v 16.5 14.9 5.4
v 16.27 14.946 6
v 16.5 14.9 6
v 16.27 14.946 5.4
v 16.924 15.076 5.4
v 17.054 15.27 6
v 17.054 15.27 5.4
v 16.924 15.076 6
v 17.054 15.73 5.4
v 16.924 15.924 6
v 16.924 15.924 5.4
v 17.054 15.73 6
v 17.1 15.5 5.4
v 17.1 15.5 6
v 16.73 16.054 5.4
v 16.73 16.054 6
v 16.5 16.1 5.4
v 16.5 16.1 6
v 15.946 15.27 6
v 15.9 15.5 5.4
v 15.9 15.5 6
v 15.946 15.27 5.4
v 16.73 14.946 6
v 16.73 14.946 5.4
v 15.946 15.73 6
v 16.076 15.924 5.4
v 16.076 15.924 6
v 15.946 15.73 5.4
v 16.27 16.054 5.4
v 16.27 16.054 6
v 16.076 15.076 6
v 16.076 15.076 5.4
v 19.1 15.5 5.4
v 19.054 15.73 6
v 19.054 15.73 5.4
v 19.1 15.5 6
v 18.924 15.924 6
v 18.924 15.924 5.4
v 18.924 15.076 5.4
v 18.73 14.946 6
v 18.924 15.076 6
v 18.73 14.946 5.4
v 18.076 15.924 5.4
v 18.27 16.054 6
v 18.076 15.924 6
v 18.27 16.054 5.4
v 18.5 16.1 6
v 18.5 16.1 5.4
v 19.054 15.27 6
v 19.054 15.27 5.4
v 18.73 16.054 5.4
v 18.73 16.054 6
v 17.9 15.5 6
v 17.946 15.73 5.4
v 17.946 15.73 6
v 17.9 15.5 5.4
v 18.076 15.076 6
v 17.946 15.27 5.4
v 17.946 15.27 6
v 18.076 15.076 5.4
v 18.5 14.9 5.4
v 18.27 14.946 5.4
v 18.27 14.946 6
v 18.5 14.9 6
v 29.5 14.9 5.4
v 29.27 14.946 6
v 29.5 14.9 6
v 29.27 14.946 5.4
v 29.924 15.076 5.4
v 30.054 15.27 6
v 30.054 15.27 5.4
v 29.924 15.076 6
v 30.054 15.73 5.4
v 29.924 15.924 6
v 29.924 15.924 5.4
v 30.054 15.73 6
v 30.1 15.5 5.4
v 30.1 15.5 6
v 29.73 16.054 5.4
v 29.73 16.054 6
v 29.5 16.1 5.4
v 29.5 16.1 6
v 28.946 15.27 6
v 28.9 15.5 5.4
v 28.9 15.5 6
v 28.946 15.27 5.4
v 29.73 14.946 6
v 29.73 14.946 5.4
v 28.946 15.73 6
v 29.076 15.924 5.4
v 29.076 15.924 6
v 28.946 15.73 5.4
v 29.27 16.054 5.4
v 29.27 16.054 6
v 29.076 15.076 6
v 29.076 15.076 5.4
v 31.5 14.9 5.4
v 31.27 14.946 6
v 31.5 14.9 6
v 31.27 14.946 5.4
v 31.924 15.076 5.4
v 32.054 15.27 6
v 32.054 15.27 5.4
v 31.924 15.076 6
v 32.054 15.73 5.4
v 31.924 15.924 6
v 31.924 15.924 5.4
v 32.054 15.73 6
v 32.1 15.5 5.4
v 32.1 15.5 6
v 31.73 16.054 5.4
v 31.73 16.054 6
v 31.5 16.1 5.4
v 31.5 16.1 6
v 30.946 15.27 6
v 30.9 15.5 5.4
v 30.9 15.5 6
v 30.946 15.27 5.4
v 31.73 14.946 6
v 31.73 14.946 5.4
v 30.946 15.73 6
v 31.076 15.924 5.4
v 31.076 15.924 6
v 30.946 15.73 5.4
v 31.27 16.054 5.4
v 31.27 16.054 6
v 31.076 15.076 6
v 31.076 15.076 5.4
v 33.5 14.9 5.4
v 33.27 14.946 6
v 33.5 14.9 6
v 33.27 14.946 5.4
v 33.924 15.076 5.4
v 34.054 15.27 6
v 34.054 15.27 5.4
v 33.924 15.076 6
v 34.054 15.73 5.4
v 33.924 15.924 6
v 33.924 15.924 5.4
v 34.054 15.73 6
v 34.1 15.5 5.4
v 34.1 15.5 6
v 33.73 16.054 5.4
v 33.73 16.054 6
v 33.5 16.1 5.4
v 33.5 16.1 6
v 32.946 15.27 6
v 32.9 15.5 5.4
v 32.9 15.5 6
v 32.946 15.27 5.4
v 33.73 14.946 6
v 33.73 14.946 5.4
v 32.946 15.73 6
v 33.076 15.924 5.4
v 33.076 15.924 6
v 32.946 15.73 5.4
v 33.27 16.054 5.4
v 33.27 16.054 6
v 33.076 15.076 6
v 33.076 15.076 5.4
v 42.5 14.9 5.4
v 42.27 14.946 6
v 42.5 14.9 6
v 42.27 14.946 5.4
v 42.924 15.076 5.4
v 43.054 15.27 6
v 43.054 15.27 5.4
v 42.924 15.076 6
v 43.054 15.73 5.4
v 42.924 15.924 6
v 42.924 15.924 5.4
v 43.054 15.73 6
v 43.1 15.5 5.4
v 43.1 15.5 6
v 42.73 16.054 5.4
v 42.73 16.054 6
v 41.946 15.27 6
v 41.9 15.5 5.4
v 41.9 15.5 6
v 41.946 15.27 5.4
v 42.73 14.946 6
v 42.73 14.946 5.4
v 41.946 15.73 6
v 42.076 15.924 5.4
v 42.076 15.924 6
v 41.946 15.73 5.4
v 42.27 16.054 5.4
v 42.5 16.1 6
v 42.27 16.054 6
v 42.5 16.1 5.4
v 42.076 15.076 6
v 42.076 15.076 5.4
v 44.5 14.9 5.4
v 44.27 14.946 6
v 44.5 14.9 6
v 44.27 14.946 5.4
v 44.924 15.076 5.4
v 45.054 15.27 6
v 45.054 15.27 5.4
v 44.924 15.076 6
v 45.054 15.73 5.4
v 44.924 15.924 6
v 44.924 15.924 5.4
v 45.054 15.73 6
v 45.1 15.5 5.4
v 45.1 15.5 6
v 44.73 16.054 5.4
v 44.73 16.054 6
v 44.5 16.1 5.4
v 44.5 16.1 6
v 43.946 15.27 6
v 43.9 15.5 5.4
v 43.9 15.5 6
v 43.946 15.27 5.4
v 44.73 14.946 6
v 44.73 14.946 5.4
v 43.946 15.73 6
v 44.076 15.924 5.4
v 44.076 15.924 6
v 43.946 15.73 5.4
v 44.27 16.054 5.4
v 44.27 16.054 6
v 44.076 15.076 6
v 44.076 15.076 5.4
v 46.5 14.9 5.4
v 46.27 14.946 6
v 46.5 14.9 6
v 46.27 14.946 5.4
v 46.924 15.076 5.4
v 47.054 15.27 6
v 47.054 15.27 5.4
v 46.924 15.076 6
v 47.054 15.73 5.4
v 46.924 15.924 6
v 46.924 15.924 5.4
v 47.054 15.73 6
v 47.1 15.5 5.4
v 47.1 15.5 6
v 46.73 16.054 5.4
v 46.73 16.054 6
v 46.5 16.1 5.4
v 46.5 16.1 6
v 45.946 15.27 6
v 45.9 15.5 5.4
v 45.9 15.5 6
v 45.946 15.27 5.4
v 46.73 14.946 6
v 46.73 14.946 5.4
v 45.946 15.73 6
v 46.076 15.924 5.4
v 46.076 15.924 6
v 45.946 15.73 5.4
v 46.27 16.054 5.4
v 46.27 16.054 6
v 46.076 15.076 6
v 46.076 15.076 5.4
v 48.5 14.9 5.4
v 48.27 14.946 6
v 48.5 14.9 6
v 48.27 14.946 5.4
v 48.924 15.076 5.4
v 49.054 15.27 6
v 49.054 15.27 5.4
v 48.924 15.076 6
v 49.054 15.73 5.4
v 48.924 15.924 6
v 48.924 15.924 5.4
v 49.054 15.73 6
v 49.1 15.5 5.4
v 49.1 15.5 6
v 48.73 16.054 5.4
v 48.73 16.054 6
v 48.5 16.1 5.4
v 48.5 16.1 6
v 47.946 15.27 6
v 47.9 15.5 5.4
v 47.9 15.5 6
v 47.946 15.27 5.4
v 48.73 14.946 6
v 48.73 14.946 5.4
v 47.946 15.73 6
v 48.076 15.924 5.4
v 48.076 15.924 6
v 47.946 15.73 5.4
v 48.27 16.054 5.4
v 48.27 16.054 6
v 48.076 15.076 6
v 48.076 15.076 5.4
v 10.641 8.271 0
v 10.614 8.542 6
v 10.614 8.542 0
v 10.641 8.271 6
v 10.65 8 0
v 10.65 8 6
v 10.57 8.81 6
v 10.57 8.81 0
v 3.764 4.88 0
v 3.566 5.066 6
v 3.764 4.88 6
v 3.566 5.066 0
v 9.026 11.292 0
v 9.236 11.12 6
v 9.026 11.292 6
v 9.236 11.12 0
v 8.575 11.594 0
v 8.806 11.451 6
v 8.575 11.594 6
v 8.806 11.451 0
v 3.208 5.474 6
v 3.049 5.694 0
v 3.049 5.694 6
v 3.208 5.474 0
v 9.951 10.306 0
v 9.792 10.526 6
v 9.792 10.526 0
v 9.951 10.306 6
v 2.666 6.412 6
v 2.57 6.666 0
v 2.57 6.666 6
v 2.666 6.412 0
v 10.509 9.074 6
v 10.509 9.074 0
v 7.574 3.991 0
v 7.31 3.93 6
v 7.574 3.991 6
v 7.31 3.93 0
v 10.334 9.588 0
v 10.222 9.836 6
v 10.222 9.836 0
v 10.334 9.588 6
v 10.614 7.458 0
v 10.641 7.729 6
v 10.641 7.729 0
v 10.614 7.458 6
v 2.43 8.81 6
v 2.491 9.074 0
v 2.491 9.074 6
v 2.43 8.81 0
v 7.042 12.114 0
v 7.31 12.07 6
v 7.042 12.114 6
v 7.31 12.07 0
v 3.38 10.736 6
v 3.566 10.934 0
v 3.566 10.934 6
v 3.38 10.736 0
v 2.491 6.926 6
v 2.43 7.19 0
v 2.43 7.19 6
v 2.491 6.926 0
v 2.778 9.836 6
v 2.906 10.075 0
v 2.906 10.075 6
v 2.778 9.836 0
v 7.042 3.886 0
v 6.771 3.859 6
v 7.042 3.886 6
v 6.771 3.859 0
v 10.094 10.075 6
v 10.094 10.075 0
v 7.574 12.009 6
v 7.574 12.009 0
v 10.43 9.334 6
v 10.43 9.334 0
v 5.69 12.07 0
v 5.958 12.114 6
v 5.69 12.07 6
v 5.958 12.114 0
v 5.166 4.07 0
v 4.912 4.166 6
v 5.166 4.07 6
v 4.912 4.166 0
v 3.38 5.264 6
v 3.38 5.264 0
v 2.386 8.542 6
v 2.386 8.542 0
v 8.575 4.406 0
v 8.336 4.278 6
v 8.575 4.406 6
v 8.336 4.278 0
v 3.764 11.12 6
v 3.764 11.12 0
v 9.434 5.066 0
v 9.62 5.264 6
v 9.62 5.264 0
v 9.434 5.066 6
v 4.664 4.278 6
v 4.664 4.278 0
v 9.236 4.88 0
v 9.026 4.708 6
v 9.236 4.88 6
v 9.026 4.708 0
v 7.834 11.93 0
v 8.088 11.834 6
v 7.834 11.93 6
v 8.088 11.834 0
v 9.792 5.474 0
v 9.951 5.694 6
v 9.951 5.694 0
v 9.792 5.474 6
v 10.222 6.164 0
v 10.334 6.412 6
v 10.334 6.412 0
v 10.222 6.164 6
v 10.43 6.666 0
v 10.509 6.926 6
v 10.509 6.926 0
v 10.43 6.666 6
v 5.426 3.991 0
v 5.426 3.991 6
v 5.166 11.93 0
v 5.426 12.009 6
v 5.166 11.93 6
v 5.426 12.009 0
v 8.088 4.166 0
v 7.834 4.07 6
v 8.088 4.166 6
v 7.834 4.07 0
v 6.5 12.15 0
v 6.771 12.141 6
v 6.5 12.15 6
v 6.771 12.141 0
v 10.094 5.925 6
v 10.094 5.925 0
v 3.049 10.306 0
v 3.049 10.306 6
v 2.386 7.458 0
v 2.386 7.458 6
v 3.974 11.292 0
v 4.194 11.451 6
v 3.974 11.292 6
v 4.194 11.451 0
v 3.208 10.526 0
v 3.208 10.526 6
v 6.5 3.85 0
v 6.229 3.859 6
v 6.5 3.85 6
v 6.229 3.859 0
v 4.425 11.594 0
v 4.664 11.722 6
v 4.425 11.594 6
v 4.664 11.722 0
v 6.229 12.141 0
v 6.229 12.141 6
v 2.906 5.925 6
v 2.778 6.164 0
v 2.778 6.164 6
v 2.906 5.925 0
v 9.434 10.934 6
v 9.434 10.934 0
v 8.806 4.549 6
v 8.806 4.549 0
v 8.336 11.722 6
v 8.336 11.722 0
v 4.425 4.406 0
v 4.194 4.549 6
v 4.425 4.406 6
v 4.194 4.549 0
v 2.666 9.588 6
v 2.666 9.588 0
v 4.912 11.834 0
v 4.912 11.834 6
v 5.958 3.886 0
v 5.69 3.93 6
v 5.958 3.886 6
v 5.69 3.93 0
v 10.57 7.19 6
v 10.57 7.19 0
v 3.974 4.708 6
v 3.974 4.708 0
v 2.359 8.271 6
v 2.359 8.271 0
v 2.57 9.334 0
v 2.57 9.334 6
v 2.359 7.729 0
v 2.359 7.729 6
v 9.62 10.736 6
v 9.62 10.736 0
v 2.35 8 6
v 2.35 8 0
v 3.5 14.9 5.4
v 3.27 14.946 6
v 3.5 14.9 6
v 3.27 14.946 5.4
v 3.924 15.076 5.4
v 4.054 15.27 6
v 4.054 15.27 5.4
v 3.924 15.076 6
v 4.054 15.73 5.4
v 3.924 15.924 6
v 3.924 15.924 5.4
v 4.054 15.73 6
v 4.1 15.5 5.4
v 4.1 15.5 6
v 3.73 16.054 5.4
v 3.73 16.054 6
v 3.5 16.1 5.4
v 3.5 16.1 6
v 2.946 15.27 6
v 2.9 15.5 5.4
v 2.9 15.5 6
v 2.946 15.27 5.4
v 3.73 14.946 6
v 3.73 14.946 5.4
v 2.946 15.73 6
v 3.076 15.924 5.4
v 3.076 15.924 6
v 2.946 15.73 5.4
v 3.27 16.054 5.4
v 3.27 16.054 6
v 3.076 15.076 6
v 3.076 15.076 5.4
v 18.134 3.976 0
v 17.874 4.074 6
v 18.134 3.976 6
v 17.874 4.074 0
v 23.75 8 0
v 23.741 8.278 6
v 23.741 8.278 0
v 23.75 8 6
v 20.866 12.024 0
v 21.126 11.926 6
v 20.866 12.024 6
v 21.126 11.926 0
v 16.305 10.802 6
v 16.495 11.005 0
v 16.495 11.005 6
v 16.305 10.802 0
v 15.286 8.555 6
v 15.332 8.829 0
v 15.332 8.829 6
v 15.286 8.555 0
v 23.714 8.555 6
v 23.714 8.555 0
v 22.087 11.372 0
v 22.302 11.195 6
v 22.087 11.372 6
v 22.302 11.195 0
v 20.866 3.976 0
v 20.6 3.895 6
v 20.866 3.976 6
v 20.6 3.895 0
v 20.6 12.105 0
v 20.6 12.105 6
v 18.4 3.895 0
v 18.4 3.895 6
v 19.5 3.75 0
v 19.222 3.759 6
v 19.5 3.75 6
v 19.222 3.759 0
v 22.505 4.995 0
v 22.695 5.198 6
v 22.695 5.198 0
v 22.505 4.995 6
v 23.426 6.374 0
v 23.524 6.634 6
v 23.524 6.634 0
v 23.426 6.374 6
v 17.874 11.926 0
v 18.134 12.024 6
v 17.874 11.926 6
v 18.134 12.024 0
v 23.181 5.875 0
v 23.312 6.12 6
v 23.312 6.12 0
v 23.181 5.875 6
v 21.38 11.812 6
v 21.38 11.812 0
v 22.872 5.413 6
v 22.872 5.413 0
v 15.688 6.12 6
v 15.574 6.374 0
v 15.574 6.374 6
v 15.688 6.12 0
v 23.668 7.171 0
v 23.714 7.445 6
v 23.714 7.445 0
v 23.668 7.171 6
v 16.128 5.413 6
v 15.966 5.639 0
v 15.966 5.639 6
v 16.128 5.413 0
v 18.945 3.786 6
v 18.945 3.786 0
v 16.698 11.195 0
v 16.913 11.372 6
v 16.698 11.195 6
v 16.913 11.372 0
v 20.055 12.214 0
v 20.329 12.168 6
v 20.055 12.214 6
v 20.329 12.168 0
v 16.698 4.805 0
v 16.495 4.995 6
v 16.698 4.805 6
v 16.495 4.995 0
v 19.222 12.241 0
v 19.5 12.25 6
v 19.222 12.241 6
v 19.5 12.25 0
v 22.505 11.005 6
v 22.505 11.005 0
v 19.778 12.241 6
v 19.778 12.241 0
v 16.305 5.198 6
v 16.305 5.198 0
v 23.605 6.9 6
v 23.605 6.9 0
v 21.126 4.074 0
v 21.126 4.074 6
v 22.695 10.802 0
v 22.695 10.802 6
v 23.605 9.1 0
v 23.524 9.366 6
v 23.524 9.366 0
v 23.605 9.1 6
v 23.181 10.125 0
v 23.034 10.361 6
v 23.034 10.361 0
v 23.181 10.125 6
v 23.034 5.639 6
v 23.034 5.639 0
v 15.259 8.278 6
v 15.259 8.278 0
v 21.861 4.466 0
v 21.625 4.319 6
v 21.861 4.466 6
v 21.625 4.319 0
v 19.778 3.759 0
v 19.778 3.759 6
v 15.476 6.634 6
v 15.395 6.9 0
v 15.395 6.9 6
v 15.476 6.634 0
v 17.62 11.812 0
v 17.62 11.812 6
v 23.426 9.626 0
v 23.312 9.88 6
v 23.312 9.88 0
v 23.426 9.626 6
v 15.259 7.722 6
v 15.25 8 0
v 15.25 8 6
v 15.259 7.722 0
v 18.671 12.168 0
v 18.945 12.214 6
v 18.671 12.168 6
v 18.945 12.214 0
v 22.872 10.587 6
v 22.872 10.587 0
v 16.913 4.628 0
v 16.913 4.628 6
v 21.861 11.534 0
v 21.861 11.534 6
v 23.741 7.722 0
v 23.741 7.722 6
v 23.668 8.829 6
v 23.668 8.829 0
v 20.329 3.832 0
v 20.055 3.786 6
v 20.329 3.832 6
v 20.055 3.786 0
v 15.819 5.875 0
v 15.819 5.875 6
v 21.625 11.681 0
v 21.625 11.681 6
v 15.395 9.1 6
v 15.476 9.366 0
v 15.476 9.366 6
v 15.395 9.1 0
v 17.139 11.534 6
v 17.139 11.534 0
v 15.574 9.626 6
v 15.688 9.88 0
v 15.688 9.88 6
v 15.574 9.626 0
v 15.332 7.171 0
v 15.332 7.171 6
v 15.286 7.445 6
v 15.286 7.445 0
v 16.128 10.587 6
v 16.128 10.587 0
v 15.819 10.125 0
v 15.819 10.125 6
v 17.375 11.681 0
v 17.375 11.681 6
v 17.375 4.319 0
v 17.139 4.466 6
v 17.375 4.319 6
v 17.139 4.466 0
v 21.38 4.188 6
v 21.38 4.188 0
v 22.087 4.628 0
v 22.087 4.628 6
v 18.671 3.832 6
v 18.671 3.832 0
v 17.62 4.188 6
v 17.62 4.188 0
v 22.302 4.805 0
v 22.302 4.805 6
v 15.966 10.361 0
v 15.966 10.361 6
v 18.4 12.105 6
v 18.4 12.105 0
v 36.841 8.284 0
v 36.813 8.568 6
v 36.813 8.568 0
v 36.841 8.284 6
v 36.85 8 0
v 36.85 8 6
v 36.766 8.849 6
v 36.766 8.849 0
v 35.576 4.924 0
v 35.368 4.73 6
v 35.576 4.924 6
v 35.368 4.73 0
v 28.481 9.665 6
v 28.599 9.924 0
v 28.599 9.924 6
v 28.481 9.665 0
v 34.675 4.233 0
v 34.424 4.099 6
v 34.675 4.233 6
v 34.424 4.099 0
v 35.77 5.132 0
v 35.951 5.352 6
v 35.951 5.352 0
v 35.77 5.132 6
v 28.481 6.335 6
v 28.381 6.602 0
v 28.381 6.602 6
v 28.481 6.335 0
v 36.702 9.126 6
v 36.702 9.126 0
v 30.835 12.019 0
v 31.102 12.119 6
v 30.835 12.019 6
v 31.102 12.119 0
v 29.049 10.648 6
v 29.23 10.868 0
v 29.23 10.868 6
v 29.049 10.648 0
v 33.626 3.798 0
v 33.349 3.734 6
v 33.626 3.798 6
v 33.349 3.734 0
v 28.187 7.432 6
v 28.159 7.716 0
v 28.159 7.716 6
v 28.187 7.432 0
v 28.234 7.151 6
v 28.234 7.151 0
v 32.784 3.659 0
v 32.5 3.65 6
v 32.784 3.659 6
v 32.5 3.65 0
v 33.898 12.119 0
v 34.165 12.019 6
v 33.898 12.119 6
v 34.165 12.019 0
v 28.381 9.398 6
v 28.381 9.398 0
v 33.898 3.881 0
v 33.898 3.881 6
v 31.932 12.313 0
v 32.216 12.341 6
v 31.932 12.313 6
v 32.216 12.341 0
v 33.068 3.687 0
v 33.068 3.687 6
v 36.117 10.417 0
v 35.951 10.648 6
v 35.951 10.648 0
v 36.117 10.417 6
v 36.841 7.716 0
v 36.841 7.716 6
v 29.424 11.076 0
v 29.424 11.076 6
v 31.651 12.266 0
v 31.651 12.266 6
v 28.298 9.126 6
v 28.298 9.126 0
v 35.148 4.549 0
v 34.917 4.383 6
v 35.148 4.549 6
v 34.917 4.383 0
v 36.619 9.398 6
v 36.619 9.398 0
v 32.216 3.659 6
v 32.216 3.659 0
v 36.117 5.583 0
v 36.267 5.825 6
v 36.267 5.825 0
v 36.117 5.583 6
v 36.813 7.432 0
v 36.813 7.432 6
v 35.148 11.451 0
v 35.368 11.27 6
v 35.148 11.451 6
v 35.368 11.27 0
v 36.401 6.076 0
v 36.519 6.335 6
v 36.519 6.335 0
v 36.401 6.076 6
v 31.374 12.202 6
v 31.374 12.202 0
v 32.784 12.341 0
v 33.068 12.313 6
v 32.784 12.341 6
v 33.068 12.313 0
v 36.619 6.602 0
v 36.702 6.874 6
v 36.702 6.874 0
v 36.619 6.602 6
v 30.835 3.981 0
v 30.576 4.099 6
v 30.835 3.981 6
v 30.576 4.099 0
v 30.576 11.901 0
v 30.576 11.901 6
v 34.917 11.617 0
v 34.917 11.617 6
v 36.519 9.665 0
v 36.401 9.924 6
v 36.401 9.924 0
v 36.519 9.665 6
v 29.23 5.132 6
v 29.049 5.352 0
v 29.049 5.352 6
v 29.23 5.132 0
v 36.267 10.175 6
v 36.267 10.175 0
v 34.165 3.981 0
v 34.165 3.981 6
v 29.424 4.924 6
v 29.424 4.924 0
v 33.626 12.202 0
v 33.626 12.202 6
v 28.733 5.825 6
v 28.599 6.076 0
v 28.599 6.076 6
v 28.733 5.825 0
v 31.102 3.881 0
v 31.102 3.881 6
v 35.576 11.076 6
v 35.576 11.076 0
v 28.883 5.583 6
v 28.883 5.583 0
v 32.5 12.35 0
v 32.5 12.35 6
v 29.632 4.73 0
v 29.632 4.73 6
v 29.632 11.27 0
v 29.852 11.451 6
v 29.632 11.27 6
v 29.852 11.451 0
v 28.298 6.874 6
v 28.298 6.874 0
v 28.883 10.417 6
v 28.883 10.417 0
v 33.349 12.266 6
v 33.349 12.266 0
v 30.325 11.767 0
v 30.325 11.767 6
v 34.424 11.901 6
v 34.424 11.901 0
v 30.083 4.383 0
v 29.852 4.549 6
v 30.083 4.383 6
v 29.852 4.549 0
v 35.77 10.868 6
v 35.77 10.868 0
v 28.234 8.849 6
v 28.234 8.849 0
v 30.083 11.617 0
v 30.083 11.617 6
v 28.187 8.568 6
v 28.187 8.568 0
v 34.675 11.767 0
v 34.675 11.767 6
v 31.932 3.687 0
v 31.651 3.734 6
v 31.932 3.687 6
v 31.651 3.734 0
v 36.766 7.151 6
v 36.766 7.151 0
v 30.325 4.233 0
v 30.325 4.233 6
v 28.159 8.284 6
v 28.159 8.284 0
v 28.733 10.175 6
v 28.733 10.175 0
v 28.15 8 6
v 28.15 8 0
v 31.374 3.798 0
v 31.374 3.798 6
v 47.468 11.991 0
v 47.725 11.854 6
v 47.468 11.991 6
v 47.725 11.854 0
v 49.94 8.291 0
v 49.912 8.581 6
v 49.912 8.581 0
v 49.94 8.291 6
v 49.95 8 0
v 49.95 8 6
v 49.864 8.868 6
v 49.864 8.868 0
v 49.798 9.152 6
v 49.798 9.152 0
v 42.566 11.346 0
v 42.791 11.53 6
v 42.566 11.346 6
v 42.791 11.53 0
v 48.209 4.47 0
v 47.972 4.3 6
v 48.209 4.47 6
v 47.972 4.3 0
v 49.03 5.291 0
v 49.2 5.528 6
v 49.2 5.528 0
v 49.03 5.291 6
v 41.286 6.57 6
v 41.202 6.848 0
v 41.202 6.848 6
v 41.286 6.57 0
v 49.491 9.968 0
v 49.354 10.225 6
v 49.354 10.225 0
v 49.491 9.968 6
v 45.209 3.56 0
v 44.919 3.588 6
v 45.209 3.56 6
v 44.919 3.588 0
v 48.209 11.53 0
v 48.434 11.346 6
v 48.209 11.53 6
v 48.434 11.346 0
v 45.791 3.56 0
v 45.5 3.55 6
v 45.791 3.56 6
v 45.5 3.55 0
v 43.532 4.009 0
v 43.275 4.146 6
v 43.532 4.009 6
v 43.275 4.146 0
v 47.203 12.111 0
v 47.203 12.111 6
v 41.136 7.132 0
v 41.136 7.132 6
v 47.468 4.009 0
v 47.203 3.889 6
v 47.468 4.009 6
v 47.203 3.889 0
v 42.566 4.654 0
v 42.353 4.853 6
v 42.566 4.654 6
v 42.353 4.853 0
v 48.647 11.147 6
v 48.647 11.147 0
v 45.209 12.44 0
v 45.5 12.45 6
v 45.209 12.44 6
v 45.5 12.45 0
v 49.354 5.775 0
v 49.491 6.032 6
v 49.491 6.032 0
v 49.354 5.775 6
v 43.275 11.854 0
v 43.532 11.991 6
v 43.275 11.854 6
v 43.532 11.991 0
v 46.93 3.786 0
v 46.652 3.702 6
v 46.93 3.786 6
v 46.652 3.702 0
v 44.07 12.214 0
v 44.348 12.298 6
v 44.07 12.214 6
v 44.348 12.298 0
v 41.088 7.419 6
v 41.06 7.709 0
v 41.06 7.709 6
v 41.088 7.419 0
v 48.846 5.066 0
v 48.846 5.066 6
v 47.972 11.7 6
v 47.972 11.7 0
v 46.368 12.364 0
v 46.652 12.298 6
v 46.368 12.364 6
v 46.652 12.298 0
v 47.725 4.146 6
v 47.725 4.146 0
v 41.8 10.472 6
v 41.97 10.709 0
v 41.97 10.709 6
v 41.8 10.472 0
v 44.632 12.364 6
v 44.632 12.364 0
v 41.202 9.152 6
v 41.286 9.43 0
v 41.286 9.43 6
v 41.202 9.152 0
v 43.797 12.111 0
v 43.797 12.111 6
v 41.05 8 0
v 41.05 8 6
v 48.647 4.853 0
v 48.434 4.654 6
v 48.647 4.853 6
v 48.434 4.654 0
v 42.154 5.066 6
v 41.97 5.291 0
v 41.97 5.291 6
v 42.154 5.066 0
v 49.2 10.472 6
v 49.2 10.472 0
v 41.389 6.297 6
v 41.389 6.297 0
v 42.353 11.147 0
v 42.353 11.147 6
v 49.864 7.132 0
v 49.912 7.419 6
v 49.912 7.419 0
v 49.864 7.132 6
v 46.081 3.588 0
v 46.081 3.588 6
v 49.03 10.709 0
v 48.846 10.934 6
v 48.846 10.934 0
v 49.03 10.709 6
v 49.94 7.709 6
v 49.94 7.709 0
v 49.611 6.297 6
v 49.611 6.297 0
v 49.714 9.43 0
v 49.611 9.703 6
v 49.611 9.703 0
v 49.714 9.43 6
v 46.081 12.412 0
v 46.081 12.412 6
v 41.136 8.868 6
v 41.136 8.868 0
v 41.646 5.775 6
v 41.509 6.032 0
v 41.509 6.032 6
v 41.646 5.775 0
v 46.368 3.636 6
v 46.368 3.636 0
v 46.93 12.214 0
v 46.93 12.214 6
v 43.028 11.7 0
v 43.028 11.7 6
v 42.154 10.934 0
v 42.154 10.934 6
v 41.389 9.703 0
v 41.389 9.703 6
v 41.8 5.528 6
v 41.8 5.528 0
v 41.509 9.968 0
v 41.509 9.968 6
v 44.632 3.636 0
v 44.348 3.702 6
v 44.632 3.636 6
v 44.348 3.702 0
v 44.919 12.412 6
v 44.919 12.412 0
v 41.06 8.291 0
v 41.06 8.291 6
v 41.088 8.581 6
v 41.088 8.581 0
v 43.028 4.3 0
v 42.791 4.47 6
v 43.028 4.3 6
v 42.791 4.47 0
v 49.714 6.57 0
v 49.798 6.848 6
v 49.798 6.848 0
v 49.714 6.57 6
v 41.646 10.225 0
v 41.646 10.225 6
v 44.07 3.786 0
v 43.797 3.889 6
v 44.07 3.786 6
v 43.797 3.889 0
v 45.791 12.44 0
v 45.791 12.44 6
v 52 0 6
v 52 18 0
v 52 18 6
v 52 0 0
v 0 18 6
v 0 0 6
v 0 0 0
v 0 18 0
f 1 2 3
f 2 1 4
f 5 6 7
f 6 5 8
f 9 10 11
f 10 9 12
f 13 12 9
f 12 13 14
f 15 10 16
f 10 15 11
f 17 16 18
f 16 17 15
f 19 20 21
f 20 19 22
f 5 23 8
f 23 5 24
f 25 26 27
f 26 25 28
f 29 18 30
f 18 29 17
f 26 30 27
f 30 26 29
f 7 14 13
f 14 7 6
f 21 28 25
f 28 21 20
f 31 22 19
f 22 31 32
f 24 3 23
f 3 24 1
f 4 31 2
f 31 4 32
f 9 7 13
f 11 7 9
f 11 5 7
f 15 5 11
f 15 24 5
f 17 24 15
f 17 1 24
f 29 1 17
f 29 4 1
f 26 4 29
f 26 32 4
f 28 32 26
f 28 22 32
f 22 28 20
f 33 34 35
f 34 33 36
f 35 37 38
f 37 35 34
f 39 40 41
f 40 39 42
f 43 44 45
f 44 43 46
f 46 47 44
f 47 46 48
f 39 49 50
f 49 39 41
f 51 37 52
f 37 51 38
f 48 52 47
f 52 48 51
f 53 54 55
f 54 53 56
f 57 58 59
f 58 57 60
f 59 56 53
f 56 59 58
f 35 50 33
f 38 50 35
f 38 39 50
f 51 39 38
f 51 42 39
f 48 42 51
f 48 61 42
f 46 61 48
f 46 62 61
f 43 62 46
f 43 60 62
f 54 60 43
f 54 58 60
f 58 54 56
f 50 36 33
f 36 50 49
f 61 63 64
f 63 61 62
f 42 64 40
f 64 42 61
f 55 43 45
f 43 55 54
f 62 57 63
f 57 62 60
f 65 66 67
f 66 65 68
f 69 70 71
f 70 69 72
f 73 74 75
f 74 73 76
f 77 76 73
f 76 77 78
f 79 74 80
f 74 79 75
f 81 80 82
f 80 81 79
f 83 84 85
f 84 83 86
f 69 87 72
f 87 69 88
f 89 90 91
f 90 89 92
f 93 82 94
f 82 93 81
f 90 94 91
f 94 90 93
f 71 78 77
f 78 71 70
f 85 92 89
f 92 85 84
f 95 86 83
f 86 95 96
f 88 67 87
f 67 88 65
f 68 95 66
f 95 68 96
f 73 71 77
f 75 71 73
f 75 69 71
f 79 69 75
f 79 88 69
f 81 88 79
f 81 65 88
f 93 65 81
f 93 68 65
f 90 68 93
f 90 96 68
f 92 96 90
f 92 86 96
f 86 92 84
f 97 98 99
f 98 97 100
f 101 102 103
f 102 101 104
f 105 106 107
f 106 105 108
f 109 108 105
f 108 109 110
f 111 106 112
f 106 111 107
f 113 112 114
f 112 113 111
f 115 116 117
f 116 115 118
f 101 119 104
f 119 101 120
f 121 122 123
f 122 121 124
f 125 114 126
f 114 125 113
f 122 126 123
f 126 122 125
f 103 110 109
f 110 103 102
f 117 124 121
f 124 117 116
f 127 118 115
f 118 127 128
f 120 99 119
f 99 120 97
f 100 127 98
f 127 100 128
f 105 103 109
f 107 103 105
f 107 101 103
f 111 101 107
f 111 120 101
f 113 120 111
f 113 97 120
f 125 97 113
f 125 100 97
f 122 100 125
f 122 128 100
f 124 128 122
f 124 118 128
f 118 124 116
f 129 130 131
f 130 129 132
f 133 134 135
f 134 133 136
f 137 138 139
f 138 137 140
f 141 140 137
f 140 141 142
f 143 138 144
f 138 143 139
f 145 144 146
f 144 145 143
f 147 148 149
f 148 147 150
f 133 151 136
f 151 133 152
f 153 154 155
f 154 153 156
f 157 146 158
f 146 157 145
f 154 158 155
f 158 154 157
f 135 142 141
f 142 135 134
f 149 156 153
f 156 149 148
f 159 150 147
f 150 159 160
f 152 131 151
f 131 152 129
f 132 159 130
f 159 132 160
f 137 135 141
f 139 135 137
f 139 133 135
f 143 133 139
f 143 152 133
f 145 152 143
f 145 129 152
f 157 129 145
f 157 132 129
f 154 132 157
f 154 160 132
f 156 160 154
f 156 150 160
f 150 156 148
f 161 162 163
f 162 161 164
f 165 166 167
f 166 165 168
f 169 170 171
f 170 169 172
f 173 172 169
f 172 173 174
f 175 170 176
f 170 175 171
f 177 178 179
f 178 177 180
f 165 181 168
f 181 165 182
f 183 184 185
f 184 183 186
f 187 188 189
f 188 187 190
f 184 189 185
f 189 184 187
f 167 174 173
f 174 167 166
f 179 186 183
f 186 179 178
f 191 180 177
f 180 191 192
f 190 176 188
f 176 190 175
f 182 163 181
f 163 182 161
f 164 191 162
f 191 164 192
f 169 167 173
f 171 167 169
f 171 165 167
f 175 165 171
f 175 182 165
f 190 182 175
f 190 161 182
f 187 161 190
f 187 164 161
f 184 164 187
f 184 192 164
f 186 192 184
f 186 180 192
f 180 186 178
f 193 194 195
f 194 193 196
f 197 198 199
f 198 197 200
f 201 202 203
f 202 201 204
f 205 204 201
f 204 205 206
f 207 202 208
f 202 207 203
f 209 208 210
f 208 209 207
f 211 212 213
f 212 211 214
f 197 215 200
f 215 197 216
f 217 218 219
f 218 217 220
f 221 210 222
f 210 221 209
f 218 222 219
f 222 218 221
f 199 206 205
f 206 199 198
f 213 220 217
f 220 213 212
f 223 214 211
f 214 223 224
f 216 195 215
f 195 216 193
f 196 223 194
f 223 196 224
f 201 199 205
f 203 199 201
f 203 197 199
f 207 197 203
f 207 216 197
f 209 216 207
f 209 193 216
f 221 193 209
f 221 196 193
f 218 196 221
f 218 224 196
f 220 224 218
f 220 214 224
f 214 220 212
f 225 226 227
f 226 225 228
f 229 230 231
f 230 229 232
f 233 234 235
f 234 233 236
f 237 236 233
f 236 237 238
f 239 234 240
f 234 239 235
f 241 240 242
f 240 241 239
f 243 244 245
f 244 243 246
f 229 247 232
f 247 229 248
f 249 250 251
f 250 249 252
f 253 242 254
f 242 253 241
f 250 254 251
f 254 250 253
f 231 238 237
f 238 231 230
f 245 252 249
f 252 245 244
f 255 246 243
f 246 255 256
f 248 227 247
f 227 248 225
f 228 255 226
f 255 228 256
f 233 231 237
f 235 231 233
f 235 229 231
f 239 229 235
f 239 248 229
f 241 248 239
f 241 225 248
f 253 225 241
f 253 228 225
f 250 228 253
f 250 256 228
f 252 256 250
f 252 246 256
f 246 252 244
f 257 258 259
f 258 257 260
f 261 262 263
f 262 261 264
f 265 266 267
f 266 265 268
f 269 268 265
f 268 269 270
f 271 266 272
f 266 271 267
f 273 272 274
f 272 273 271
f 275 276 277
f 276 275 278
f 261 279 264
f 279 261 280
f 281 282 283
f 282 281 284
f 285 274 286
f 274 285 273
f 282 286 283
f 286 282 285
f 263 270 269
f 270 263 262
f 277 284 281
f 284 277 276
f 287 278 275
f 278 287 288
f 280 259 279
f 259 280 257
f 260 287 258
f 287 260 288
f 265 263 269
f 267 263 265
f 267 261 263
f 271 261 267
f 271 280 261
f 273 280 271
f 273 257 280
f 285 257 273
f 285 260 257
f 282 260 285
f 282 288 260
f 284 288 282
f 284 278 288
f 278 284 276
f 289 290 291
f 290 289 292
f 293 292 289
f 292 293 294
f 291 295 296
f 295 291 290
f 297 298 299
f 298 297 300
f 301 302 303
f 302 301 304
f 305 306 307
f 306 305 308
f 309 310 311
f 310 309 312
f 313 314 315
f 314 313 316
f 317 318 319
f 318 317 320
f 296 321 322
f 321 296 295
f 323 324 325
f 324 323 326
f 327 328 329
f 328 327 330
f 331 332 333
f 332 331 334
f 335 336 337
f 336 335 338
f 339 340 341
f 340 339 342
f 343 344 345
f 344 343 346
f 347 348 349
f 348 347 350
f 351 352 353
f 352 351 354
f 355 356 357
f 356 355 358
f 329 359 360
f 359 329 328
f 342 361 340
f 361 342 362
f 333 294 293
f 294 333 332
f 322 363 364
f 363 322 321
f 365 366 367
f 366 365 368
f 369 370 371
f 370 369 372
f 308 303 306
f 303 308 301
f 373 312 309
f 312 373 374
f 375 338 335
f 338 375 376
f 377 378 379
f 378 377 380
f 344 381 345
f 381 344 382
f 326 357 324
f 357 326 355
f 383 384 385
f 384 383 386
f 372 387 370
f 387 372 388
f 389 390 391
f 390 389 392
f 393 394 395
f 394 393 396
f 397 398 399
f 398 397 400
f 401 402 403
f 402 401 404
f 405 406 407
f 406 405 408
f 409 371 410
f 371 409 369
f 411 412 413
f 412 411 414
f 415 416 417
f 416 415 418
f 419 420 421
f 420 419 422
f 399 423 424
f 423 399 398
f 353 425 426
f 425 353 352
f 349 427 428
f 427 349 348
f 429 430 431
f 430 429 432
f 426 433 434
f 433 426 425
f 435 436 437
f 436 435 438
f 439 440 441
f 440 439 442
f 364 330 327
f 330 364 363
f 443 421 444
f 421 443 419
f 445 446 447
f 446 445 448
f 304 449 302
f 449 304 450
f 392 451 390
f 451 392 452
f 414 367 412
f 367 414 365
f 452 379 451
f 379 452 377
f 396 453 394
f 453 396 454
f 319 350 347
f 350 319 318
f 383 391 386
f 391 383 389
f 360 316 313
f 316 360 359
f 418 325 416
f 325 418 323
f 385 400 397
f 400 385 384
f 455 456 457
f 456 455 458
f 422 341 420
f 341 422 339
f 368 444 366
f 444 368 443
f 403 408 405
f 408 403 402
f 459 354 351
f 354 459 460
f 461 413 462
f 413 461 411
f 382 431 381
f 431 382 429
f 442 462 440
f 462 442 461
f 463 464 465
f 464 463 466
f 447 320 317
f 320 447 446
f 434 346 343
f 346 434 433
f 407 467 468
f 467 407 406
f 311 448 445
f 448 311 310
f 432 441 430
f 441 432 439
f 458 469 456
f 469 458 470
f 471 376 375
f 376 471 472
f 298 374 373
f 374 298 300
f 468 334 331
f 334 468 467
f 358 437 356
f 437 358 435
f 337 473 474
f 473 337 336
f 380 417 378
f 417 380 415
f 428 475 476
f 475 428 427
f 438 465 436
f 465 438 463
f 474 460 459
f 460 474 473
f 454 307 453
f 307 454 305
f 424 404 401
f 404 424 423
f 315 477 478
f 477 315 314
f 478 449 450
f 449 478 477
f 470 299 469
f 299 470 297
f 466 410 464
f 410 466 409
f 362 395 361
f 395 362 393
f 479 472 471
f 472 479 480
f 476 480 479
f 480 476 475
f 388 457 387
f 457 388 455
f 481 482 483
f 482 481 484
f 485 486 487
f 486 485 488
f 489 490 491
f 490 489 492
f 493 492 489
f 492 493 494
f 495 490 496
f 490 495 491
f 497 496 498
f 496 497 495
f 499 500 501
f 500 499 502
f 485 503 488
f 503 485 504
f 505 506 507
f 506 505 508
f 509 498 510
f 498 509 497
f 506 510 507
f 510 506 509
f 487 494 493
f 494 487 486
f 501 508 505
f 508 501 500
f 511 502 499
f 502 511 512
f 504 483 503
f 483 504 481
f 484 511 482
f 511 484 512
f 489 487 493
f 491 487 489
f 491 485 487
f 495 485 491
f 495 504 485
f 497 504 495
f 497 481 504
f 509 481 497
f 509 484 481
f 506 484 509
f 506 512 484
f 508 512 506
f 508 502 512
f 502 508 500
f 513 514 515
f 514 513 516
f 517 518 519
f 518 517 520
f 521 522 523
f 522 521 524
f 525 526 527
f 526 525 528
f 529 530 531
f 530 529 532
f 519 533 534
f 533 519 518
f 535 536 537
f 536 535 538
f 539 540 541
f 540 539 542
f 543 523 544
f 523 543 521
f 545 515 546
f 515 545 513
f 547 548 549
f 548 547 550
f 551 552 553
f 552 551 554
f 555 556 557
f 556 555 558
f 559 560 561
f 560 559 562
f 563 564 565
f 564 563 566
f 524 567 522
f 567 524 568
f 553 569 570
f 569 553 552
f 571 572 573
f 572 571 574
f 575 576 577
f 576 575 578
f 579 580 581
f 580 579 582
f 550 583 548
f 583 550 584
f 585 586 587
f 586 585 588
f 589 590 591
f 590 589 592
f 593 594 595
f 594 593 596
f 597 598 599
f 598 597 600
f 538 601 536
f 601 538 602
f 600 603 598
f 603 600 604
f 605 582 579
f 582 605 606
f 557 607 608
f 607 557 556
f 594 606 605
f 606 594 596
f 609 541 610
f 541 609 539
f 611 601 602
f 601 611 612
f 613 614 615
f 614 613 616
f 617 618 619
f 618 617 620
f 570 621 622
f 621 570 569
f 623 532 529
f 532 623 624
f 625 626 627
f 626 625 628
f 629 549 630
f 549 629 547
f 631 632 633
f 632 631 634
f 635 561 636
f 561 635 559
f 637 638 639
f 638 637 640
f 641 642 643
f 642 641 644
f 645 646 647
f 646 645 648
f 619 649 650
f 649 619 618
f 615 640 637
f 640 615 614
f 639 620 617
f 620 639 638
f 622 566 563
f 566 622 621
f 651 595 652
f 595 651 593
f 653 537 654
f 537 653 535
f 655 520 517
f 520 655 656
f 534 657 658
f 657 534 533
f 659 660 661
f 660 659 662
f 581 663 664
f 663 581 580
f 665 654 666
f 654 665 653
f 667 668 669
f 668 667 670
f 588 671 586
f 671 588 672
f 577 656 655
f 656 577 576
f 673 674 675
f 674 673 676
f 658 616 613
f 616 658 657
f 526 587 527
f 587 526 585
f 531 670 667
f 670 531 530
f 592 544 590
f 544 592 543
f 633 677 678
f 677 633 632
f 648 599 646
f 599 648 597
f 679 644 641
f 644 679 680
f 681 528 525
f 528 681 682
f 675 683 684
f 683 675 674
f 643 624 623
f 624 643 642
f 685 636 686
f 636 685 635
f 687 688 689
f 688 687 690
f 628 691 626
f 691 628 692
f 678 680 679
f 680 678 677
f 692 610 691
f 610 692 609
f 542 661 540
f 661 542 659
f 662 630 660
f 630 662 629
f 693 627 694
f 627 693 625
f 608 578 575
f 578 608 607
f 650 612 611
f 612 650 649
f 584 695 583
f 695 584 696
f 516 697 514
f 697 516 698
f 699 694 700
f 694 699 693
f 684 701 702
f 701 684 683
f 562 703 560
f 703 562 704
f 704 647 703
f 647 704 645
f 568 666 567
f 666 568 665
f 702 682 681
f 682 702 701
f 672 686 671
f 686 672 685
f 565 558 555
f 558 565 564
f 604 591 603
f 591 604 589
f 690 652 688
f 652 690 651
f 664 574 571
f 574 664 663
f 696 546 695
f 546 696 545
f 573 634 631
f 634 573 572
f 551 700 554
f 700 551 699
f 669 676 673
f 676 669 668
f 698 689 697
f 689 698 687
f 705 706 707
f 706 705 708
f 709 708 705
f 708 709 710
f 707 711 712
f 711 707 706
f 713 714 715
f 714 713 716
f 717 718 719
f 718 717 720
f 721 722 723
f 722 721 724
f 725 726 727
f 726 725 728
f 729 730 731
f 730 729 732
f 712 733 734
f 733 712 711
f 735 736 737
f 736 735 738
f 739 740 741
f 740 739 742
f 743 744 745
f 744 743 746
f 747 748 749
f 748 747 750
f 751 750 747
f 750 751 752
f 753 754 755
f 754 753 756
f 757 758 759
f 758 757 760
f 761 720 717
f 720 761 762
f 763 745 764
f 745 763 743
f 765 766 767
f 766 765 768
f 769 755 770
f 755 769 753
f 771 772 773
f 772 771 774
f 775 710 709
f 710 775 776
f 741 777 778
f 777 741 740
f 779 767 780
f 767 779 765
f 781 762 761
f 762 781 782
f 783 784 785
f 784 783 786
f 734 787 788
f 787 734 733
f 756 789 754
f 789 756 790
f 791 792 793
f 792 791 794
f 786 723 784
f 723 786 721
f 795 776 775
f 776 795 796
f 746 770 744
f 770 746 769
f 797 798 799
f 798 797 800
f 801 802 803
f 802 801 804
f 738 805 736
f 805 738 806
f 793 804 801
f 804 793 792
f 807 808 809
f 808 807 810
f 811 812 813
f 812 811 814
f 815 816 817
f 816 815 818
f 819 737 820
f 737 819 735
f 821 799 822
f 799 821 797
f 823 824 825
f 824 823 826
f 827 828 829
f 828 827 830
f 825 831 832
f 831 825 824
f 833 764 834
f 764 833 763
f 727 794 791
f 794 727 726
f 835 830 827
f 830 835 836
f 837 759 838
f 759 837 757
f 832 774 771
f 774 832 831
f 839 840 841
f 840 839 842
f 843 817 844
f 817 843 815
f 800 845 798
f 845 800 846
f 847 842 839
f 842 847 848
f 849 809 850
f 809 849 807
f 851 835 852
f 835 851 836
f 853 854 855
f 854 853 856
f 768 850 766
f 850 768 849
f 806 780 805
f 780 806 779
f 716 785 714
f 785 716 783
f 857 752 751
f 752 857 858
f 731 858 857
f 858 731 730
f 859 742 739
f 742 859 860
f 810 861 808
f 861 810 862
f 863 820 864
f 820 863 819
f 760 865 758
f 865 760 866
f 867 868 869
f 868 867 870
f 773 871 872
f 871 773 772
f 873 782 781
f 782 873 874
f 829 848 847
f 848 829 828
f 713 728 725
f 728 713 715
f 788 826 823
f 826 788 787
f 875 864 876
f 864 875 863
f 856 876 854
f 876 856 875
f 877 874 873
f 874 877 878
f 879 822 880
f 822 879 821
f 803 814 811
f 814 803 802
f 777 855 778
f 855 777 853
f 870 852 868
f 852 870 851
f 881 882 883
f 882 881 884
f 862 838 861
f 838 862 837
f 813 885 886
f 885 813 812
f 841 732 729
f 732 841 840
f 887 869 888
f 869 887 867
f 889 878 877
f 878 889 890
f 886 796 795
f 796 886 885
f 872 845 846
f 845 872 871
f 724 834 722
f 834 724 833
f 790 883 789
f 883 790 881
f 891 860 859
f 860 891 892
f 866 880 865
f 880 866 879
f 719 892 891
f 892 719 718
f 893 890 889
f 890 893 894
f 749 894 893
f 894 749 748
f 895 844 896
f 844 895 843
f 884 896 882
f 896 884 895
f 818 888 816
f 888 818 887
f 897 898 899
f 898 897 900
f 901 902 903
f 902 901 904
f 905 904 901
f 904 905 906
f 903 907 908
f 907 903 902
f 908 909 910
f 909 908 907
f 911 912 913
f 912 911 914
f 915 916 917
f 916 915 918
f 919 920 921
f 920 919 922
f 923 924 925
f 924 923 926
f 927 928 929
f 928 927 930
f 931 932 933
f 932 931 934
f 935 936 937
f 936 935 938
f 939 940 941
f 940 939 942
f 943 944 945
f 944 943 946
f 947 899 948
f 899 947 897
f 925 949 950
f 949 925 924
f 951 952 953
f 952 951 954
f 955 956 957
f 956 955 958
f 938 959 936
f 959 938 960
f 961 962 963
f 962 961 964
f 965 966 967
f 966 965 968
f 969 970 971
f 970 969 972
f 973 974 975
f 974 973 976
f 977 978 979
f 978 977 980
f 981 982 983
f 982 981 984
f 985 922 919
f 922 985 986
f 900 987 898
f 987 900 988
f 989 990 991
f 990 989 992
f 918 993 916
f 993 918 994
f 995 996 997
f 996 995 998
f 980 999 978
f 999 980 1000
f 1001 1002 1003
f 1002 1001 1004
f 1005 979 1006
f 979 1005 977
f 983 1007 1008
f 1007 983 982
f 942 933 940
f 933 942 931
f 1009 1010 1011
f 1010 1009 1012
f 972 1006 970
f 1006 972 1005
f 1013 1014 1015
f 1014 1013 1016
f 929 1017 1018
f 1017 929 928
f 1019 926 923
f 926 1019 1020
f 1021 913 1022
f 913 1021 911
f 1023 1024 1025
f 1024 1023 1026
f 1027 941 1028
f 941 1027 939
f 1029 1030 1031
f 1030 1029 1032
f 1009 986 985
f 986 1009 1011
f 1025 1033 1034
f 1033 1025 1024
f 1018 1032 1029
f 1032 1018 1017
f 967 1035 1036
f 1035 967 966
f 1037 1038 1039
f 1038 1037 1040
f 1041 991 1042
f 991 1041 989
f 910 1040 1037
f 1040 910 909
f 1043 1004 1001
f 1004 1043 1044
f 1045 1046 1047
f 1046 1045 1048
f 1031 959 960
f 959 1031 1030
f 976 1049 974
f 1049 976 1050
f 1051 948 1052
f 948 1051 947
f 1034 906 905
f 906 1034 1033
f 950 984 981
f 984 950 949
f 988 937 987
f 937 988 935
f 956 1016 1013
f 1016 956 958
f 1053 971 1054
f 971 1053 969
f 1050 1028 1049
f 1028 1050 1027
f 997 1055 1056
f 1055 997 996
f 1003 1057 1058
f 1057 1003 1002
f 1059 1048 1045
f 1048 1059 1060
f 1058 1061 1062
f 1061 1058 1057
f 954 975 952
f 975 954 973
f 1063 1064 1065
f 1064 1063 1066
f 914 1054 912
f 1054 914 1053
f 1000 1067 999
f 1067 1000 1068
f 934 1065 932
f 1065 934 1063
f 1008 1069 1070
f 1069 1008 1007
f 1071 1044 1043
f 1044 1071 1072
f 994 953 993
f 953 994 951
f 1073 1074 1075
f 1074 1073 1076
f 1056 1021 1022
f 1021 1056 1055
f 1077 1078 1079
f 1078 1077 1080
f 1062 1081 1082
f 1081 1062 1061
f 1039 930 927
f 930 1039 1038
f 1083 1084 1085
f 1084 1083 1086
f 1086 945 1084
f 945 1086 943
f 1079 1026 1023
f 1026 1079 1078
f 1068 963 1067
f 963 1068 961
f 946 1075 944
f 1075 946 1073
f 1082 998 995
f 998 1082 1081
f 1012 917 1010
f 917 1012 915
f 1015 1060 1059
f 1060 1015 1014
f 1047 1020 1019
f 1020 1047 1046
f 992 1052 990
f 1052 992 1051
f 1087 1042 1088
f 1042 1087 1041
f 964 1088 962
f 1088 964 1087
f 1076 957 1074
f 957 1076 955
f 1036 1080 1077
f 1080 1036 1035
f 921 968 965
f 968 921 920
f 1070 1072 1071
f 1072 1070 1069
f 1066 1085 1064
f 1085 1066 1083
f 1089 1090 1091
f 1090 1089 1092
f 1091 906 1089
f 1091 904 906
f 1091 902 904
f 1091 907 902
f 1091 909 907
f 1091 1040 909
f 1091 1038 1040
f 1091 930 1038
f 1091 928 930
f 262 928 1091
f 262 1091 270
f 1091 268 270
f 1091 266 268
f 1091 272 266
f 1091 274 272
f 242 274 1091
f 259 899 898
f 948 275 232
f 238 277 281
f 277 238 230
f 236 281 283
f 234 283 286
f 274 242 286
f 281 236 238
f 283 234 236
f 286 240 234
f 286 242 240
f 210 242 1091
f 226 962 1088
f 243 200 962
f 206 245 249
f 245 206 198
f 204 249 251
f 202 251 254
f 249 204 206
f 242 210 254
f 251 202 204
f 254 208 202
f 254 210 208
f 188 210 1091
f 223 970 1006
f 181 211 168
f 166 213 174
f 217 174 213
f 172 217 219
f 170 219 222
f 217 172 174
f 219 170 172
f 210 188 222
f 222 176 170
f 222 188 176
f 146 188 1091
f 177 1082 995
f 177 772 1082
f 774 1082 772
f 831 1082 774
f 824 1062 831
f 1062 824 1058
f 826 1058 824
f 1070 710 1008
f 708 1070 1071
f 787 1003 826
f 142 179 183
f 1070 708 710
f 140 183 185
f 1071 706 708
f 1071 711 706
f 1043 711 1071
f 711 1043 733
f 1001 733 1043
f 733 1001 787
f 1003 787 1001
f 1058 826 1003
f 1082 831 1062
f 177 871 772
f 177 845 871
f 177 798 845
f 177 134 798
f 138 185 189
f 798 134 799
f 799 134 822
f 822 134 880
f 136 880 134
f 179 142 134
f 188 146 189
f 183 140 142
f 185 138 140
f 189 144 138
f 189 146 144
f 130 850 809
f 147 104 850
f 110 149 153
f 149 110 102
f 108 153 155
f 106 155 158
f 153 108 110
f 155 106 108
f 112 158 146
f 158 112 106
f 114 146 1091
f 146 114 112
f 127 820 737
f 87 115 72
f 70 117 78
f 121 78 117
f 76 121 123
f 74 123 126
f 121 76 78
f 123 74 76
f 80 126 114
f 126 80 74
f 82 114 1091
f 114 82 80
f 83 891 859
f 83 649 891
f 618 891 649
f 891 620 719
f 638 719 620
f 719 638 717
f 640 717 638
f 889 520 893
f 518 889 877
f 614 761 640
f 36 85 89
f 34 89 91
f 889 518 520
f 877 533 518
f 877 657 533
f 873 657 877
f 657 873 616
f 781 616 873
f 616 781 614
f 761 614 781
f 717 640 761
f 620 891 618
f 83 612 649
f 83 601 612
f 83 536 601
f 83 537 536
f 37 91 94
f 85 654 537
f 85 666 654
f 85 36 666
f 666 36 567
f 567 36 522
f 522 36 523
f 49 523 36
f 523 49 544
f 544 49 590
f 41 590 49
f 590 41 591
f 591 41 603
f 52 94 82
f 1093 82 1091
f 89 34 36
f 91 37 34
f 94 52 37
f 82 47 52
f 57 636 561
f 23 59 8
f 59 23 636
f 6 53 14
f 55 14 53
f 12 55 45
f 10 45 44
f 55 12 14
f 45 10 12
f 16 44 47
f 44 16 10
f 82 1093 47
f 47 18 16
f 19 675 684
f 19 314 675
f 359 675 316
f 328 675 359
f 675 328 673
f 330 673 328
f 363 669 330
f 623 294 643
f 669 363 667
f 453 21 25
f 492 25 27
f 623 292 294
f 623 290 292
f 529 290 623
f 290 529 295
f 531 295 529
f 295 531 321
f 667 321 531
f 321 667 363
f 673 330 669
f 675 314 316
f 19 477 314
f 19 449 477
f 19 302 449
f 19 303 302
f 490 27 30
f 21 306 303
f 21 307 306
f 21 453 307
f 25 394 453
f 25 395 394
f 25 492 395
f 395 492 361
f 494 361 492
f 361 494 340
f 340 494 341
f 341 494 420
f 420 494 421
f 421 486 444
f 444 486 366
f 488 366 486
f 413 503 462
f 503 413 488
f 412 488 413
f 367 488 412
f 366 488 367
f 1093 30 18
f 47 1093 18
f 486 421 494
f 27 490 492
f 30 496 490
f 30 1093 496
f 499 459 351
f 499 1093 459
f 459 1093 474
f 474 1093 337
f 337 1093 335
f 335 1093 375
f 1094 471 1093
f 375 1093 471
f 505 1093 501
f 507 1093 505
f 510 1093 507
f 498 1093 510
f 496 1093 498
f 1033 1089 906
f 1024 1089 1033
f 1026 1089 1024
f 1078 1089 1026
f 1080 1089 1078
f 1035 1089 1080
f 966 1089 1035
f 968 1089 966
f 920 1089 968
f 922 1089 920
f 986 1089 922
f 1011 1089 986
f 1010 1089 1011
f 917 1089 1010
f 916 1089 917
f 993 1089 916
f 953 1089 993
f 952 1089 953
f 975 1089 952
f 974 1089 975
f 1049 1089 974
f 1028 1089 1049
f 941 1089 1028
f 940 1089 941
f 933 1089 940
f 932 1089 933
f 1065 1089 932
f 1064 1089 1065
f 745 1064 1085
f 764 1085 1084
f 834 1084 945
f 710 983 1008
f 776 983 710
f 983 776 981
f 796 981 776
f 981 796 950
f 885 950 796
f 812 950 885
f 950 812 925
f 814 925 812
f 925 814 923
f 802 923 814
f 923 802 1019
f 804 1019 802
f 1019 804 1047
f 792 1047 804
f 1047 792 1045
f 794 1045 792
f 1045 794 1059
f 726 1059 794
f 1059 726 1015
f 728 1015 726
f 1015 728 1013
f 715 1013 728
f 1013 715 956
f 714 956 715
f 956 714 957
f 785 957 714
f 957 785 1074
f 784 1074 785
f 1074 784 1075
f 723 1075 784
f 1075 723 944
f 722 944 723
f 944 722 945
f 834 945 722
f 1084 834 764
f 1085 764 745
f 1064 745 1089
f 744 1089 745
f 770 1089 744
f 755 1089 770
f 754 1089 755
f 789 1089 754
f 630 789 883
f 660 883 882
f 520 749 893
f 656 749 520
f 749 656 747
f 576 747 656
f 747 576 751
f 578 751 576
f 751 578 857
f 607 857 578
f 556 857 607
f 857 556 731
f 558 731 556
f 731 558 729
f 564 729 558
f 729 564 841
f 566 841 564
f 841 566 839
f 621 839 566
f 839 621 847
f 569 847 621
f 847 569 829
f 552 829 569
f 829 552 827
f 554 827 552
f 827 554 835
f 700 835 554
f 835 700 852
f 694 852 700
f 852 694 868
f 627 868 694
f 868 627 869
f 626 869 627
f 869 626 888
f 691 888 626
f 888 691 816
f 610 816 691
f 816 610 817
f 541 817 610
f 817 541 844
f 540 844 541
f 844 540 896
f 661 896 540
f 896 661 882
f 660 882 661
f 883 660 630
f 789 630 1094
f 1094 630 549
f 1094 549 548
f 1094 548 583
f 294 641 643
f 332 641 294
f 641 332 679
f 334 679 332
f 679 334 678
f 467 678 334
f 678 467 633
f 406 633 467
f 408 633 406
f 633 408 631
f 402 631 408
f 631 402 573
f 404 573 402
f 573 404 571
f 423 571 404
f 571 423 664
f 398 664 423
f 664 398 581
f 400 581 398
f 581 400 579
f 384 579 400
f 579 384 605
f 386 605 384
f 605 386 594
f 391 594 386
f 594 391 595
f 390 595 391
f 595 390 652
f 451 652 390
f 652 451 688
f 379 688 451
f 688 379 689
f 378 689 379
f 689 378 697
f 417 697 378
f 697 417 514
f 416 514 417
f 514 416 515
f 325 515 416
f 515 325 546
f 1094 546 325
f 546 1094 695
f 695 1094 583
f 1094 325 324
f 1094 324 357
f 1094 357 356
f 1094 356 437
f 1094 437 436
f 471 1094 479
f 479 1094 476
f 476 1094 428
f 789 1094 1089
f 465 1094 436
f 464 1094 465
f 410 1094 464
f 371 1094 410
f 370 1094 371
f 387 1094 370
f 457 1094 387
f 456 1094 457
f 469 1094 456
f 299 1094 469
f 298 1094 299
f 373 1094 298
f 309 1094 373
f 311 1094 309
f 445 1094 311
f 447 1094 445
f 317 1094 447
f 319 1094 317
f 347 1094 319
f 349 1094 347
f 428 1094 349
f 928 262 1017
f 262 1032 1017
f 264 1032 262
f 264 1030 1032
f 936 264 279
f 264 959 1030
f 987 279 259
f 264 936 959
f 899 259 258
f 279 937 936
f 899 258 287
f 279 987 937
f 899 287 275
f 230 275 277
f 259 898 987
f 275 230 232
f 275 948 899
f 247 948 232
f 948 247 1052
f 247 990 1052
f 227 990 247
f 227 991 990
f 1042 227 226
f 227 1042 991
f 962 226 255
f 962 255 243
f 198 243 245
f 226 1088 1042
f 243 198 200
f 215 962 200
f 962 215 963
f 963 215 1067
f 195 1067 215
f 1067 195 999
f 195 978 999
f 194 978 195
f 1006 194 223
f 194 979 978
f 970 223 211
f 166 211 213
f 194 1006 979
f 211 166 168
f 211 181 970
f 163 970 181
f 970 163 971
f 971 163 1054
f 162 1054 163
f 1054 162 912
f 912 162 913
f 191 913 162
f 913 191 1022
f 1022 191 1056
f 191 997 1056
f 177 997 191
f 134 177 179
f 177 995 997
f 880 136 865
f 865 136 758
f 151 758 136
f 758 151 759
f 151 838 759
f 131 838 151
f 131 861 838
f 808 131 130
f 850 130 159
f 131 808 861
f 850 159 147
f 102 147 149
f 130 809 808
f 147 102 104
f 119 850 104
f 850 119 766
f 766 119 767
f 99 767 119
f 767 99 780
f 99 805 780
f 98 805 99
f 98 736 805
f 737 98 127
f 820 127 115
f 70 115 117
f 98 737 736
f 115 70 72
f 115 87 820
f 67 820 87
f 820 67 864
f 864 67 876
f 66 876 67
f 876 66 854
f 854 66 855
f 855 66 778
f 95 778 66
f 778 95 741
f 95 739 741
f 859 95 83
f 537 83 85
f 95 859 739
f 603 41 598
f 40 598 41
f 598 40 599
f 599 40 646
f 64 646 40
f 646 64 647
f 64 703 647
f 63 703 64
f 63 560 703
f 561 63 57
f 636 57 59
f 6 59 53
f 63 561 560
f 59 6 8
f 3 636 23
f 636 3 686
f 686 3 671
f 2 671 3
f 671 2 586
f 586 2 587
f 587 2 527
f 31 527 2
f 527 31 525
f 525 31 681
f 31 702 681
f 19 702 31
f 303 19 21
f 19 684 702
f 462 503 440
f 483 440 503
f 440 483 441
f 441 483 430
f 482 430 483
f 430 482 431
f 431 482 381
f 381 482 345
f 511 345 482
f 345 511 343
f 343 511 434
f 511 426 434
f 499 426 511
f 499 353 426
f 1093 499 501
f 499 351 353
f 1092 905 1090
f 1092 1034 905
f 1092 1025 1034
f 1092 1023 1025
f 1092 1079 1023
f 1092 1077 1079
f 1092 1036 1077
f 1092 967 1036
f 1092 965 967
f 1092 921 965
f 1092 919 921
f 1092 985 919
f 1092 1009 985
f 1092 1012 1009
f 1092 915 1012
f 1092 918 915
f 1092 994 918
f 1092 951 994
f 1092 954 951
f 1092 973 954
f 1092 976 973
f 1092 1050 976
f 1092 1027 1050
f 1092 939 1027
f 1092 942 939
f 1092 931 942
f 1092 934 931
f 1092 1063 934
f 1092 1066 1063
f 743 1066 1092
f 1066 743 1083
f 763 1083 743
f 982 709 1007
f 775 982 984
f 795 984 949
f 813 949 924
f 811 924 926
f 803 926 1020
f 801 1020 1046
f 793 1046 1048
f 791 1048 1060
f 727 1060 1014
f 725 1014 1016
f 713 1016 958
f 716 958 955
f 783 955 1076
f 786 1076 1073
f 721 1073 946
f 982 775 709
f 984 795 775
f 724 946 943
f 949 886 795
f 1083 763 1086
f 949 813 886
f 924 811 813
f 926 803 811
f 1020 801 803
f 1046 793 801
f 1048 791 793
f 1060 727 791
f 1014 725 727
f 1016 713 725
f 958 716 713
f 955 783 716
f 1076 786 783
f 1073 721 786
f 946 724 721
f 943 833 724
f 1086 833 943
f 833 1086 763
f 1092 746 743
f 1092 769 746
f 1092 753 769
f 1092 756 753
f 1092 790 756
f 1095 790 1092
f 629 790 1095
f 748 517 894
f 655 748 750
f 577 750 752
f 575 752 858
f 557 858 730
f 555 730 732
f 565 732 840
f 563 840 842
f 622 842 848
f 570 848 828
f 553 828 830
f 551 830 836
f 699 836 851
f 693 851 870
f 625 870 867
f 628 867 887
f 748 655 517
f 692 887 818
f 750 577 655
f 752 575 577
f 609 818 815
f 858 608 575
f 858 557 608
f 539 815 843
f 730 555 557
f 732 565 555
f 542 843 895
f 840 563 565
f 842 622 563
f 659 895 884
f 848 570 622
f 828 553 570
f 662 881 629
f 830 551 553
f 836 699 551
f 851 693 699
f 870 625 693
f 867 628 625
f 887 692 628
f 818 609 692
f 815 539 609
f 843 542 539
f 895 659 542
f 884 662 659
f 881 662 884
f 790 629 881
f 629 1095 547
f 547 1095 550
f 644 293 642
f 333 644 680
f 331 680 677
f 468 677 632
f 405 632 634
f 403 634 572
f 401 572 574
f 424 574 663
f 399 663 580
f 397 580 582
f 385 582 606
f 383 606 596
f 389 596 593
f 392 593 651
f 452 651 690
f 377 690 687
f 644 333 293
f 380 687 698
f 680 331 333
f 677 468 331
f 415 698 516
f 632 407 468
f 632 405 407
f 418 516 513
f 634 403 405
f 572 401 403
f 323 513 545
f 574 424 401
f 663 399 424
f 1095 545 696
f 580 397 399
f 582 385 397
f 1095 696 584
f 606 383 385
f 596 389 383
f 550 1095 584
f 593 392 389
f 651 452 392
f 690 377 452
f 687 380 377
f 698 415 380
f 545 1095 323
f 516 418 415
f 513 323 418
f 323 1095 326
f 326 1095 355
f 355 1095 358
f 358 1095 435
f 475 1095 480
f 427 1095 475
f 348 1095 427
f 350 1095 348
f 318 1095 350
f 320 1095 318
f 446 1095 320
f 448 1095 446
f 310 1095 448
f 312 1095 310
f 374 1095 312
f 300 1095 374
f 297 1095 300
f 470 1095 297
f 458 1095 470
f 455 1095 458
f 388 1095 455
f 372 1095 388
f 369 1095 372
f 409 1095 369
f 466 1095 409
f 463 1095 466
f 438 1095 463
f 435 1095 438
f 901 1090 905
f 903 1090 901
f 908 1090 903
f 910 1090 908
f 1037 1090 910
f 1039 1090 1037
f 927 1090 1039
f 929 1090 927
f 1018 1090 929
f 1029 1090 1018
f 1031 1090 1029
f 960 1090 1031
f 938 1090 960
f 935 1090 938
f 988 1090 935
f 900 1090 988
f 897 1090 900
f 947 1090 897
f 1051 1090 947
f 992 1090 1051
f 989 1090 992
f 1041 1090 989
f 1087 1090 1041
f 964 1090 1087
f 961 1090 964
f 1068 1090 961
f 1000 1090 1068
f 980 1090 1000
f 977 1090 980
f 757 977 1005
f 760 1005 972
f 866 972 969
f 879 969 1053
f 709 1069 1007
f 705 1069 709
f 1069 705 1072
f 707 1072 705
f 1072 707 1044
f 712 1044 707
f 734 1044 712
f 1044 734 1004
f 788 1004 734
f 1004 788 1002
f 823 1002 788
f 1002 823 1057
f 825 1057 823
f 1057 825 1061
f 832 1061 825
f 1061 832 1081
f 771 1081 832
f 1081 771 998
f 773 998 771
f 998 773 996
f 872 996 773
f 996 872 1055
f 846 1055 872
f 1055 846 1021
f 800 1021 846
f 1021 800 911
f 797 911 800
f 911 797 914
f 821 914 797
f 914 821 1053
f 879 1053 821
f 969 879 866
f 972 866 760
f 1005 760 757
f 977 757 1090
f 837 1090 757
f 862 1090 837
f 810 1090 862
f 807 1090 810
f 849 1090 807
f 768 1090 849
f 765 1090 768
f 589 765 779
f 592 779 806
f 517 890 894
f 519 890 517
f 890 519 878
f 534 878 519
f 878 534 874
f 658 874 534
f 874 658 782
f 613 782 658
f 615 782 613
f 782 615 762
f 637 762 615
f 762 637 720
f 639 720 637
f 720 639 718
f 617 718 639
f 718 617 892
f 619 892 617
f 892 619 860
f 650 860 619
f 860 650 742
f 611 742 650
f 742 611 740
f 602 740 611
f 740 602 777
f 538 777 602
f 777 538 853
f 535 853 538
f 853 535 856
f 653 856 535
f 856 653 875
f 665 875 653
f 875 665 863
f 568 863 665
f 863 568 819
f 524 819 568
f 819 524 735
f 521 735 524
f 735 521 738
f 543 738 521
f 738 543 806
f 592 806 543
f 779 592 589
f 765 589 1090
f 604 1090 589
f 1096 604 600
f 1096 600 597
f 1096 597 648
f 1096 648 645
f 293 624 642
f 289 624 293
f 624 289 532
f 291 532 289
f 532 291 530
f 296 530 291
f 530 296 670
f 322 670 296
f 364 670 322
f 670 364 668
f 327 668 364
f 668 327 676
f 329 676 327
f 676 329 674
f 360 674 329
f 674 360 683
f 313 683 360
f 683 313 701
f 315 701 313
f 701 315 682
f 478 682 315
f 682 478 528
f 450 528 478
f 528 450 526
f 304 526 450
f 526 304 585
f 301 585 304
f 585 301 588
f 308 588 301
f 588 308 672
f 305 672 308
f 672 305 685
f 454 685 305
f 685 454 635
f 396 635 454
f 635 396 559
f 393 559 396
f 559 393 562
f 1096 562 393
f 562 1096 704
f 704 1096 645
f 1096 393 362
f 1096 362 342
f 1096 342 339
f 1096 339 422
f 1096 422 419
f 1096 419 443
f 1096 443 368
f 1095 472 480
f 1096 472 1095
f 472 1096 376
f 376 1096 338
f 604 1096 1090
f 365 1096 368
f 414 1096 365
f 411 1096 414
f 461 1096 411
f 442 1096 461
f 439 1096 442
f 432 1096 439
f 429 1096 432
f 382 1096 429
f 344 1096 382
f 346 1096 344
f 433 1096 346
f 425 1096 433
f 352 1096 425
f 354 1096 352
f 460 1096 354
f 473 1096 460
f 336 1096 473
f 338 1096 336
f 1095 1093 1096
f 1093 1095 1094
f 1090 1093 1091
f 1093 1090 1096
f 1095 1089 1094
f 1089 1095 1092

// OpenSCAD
// 안내관(Ø8) 구멍 공차 시험편 - fit 의 Ø8.3~8.9 구멍 4개가 8 mm 간격이라 서로 붙어 있어서 간격만 13 mm 로 넓힌 것
// 구멍 번호 = 구멍 옆 점 개수 (1점 Ø8.3, 2점 Ø8.5, 3점 Ø8.7, 4점 Ø8.9). 두께는 fit 과 같은 6 mm
d = [8.3, 8.5, 8.7, 8.9];  pitch = 13;  t = 6;
difference() {
  translate([0, 0, 0]) cube([pitch * 4, 18, t]);
  for (i = [0:3]) {
    translate([pitch * (i + 0.5), 8, -1]) cylinder(d = d[i], h = t + 2, $fn = 96);
    for (k = [0:i]) translate([pitch * (i + 0.5) - 3 + k * 2, 15.5, t - 0.6]) cylinder(d = 1.2, h = 1, $fn = 16);   // 번호 점
  }
}
